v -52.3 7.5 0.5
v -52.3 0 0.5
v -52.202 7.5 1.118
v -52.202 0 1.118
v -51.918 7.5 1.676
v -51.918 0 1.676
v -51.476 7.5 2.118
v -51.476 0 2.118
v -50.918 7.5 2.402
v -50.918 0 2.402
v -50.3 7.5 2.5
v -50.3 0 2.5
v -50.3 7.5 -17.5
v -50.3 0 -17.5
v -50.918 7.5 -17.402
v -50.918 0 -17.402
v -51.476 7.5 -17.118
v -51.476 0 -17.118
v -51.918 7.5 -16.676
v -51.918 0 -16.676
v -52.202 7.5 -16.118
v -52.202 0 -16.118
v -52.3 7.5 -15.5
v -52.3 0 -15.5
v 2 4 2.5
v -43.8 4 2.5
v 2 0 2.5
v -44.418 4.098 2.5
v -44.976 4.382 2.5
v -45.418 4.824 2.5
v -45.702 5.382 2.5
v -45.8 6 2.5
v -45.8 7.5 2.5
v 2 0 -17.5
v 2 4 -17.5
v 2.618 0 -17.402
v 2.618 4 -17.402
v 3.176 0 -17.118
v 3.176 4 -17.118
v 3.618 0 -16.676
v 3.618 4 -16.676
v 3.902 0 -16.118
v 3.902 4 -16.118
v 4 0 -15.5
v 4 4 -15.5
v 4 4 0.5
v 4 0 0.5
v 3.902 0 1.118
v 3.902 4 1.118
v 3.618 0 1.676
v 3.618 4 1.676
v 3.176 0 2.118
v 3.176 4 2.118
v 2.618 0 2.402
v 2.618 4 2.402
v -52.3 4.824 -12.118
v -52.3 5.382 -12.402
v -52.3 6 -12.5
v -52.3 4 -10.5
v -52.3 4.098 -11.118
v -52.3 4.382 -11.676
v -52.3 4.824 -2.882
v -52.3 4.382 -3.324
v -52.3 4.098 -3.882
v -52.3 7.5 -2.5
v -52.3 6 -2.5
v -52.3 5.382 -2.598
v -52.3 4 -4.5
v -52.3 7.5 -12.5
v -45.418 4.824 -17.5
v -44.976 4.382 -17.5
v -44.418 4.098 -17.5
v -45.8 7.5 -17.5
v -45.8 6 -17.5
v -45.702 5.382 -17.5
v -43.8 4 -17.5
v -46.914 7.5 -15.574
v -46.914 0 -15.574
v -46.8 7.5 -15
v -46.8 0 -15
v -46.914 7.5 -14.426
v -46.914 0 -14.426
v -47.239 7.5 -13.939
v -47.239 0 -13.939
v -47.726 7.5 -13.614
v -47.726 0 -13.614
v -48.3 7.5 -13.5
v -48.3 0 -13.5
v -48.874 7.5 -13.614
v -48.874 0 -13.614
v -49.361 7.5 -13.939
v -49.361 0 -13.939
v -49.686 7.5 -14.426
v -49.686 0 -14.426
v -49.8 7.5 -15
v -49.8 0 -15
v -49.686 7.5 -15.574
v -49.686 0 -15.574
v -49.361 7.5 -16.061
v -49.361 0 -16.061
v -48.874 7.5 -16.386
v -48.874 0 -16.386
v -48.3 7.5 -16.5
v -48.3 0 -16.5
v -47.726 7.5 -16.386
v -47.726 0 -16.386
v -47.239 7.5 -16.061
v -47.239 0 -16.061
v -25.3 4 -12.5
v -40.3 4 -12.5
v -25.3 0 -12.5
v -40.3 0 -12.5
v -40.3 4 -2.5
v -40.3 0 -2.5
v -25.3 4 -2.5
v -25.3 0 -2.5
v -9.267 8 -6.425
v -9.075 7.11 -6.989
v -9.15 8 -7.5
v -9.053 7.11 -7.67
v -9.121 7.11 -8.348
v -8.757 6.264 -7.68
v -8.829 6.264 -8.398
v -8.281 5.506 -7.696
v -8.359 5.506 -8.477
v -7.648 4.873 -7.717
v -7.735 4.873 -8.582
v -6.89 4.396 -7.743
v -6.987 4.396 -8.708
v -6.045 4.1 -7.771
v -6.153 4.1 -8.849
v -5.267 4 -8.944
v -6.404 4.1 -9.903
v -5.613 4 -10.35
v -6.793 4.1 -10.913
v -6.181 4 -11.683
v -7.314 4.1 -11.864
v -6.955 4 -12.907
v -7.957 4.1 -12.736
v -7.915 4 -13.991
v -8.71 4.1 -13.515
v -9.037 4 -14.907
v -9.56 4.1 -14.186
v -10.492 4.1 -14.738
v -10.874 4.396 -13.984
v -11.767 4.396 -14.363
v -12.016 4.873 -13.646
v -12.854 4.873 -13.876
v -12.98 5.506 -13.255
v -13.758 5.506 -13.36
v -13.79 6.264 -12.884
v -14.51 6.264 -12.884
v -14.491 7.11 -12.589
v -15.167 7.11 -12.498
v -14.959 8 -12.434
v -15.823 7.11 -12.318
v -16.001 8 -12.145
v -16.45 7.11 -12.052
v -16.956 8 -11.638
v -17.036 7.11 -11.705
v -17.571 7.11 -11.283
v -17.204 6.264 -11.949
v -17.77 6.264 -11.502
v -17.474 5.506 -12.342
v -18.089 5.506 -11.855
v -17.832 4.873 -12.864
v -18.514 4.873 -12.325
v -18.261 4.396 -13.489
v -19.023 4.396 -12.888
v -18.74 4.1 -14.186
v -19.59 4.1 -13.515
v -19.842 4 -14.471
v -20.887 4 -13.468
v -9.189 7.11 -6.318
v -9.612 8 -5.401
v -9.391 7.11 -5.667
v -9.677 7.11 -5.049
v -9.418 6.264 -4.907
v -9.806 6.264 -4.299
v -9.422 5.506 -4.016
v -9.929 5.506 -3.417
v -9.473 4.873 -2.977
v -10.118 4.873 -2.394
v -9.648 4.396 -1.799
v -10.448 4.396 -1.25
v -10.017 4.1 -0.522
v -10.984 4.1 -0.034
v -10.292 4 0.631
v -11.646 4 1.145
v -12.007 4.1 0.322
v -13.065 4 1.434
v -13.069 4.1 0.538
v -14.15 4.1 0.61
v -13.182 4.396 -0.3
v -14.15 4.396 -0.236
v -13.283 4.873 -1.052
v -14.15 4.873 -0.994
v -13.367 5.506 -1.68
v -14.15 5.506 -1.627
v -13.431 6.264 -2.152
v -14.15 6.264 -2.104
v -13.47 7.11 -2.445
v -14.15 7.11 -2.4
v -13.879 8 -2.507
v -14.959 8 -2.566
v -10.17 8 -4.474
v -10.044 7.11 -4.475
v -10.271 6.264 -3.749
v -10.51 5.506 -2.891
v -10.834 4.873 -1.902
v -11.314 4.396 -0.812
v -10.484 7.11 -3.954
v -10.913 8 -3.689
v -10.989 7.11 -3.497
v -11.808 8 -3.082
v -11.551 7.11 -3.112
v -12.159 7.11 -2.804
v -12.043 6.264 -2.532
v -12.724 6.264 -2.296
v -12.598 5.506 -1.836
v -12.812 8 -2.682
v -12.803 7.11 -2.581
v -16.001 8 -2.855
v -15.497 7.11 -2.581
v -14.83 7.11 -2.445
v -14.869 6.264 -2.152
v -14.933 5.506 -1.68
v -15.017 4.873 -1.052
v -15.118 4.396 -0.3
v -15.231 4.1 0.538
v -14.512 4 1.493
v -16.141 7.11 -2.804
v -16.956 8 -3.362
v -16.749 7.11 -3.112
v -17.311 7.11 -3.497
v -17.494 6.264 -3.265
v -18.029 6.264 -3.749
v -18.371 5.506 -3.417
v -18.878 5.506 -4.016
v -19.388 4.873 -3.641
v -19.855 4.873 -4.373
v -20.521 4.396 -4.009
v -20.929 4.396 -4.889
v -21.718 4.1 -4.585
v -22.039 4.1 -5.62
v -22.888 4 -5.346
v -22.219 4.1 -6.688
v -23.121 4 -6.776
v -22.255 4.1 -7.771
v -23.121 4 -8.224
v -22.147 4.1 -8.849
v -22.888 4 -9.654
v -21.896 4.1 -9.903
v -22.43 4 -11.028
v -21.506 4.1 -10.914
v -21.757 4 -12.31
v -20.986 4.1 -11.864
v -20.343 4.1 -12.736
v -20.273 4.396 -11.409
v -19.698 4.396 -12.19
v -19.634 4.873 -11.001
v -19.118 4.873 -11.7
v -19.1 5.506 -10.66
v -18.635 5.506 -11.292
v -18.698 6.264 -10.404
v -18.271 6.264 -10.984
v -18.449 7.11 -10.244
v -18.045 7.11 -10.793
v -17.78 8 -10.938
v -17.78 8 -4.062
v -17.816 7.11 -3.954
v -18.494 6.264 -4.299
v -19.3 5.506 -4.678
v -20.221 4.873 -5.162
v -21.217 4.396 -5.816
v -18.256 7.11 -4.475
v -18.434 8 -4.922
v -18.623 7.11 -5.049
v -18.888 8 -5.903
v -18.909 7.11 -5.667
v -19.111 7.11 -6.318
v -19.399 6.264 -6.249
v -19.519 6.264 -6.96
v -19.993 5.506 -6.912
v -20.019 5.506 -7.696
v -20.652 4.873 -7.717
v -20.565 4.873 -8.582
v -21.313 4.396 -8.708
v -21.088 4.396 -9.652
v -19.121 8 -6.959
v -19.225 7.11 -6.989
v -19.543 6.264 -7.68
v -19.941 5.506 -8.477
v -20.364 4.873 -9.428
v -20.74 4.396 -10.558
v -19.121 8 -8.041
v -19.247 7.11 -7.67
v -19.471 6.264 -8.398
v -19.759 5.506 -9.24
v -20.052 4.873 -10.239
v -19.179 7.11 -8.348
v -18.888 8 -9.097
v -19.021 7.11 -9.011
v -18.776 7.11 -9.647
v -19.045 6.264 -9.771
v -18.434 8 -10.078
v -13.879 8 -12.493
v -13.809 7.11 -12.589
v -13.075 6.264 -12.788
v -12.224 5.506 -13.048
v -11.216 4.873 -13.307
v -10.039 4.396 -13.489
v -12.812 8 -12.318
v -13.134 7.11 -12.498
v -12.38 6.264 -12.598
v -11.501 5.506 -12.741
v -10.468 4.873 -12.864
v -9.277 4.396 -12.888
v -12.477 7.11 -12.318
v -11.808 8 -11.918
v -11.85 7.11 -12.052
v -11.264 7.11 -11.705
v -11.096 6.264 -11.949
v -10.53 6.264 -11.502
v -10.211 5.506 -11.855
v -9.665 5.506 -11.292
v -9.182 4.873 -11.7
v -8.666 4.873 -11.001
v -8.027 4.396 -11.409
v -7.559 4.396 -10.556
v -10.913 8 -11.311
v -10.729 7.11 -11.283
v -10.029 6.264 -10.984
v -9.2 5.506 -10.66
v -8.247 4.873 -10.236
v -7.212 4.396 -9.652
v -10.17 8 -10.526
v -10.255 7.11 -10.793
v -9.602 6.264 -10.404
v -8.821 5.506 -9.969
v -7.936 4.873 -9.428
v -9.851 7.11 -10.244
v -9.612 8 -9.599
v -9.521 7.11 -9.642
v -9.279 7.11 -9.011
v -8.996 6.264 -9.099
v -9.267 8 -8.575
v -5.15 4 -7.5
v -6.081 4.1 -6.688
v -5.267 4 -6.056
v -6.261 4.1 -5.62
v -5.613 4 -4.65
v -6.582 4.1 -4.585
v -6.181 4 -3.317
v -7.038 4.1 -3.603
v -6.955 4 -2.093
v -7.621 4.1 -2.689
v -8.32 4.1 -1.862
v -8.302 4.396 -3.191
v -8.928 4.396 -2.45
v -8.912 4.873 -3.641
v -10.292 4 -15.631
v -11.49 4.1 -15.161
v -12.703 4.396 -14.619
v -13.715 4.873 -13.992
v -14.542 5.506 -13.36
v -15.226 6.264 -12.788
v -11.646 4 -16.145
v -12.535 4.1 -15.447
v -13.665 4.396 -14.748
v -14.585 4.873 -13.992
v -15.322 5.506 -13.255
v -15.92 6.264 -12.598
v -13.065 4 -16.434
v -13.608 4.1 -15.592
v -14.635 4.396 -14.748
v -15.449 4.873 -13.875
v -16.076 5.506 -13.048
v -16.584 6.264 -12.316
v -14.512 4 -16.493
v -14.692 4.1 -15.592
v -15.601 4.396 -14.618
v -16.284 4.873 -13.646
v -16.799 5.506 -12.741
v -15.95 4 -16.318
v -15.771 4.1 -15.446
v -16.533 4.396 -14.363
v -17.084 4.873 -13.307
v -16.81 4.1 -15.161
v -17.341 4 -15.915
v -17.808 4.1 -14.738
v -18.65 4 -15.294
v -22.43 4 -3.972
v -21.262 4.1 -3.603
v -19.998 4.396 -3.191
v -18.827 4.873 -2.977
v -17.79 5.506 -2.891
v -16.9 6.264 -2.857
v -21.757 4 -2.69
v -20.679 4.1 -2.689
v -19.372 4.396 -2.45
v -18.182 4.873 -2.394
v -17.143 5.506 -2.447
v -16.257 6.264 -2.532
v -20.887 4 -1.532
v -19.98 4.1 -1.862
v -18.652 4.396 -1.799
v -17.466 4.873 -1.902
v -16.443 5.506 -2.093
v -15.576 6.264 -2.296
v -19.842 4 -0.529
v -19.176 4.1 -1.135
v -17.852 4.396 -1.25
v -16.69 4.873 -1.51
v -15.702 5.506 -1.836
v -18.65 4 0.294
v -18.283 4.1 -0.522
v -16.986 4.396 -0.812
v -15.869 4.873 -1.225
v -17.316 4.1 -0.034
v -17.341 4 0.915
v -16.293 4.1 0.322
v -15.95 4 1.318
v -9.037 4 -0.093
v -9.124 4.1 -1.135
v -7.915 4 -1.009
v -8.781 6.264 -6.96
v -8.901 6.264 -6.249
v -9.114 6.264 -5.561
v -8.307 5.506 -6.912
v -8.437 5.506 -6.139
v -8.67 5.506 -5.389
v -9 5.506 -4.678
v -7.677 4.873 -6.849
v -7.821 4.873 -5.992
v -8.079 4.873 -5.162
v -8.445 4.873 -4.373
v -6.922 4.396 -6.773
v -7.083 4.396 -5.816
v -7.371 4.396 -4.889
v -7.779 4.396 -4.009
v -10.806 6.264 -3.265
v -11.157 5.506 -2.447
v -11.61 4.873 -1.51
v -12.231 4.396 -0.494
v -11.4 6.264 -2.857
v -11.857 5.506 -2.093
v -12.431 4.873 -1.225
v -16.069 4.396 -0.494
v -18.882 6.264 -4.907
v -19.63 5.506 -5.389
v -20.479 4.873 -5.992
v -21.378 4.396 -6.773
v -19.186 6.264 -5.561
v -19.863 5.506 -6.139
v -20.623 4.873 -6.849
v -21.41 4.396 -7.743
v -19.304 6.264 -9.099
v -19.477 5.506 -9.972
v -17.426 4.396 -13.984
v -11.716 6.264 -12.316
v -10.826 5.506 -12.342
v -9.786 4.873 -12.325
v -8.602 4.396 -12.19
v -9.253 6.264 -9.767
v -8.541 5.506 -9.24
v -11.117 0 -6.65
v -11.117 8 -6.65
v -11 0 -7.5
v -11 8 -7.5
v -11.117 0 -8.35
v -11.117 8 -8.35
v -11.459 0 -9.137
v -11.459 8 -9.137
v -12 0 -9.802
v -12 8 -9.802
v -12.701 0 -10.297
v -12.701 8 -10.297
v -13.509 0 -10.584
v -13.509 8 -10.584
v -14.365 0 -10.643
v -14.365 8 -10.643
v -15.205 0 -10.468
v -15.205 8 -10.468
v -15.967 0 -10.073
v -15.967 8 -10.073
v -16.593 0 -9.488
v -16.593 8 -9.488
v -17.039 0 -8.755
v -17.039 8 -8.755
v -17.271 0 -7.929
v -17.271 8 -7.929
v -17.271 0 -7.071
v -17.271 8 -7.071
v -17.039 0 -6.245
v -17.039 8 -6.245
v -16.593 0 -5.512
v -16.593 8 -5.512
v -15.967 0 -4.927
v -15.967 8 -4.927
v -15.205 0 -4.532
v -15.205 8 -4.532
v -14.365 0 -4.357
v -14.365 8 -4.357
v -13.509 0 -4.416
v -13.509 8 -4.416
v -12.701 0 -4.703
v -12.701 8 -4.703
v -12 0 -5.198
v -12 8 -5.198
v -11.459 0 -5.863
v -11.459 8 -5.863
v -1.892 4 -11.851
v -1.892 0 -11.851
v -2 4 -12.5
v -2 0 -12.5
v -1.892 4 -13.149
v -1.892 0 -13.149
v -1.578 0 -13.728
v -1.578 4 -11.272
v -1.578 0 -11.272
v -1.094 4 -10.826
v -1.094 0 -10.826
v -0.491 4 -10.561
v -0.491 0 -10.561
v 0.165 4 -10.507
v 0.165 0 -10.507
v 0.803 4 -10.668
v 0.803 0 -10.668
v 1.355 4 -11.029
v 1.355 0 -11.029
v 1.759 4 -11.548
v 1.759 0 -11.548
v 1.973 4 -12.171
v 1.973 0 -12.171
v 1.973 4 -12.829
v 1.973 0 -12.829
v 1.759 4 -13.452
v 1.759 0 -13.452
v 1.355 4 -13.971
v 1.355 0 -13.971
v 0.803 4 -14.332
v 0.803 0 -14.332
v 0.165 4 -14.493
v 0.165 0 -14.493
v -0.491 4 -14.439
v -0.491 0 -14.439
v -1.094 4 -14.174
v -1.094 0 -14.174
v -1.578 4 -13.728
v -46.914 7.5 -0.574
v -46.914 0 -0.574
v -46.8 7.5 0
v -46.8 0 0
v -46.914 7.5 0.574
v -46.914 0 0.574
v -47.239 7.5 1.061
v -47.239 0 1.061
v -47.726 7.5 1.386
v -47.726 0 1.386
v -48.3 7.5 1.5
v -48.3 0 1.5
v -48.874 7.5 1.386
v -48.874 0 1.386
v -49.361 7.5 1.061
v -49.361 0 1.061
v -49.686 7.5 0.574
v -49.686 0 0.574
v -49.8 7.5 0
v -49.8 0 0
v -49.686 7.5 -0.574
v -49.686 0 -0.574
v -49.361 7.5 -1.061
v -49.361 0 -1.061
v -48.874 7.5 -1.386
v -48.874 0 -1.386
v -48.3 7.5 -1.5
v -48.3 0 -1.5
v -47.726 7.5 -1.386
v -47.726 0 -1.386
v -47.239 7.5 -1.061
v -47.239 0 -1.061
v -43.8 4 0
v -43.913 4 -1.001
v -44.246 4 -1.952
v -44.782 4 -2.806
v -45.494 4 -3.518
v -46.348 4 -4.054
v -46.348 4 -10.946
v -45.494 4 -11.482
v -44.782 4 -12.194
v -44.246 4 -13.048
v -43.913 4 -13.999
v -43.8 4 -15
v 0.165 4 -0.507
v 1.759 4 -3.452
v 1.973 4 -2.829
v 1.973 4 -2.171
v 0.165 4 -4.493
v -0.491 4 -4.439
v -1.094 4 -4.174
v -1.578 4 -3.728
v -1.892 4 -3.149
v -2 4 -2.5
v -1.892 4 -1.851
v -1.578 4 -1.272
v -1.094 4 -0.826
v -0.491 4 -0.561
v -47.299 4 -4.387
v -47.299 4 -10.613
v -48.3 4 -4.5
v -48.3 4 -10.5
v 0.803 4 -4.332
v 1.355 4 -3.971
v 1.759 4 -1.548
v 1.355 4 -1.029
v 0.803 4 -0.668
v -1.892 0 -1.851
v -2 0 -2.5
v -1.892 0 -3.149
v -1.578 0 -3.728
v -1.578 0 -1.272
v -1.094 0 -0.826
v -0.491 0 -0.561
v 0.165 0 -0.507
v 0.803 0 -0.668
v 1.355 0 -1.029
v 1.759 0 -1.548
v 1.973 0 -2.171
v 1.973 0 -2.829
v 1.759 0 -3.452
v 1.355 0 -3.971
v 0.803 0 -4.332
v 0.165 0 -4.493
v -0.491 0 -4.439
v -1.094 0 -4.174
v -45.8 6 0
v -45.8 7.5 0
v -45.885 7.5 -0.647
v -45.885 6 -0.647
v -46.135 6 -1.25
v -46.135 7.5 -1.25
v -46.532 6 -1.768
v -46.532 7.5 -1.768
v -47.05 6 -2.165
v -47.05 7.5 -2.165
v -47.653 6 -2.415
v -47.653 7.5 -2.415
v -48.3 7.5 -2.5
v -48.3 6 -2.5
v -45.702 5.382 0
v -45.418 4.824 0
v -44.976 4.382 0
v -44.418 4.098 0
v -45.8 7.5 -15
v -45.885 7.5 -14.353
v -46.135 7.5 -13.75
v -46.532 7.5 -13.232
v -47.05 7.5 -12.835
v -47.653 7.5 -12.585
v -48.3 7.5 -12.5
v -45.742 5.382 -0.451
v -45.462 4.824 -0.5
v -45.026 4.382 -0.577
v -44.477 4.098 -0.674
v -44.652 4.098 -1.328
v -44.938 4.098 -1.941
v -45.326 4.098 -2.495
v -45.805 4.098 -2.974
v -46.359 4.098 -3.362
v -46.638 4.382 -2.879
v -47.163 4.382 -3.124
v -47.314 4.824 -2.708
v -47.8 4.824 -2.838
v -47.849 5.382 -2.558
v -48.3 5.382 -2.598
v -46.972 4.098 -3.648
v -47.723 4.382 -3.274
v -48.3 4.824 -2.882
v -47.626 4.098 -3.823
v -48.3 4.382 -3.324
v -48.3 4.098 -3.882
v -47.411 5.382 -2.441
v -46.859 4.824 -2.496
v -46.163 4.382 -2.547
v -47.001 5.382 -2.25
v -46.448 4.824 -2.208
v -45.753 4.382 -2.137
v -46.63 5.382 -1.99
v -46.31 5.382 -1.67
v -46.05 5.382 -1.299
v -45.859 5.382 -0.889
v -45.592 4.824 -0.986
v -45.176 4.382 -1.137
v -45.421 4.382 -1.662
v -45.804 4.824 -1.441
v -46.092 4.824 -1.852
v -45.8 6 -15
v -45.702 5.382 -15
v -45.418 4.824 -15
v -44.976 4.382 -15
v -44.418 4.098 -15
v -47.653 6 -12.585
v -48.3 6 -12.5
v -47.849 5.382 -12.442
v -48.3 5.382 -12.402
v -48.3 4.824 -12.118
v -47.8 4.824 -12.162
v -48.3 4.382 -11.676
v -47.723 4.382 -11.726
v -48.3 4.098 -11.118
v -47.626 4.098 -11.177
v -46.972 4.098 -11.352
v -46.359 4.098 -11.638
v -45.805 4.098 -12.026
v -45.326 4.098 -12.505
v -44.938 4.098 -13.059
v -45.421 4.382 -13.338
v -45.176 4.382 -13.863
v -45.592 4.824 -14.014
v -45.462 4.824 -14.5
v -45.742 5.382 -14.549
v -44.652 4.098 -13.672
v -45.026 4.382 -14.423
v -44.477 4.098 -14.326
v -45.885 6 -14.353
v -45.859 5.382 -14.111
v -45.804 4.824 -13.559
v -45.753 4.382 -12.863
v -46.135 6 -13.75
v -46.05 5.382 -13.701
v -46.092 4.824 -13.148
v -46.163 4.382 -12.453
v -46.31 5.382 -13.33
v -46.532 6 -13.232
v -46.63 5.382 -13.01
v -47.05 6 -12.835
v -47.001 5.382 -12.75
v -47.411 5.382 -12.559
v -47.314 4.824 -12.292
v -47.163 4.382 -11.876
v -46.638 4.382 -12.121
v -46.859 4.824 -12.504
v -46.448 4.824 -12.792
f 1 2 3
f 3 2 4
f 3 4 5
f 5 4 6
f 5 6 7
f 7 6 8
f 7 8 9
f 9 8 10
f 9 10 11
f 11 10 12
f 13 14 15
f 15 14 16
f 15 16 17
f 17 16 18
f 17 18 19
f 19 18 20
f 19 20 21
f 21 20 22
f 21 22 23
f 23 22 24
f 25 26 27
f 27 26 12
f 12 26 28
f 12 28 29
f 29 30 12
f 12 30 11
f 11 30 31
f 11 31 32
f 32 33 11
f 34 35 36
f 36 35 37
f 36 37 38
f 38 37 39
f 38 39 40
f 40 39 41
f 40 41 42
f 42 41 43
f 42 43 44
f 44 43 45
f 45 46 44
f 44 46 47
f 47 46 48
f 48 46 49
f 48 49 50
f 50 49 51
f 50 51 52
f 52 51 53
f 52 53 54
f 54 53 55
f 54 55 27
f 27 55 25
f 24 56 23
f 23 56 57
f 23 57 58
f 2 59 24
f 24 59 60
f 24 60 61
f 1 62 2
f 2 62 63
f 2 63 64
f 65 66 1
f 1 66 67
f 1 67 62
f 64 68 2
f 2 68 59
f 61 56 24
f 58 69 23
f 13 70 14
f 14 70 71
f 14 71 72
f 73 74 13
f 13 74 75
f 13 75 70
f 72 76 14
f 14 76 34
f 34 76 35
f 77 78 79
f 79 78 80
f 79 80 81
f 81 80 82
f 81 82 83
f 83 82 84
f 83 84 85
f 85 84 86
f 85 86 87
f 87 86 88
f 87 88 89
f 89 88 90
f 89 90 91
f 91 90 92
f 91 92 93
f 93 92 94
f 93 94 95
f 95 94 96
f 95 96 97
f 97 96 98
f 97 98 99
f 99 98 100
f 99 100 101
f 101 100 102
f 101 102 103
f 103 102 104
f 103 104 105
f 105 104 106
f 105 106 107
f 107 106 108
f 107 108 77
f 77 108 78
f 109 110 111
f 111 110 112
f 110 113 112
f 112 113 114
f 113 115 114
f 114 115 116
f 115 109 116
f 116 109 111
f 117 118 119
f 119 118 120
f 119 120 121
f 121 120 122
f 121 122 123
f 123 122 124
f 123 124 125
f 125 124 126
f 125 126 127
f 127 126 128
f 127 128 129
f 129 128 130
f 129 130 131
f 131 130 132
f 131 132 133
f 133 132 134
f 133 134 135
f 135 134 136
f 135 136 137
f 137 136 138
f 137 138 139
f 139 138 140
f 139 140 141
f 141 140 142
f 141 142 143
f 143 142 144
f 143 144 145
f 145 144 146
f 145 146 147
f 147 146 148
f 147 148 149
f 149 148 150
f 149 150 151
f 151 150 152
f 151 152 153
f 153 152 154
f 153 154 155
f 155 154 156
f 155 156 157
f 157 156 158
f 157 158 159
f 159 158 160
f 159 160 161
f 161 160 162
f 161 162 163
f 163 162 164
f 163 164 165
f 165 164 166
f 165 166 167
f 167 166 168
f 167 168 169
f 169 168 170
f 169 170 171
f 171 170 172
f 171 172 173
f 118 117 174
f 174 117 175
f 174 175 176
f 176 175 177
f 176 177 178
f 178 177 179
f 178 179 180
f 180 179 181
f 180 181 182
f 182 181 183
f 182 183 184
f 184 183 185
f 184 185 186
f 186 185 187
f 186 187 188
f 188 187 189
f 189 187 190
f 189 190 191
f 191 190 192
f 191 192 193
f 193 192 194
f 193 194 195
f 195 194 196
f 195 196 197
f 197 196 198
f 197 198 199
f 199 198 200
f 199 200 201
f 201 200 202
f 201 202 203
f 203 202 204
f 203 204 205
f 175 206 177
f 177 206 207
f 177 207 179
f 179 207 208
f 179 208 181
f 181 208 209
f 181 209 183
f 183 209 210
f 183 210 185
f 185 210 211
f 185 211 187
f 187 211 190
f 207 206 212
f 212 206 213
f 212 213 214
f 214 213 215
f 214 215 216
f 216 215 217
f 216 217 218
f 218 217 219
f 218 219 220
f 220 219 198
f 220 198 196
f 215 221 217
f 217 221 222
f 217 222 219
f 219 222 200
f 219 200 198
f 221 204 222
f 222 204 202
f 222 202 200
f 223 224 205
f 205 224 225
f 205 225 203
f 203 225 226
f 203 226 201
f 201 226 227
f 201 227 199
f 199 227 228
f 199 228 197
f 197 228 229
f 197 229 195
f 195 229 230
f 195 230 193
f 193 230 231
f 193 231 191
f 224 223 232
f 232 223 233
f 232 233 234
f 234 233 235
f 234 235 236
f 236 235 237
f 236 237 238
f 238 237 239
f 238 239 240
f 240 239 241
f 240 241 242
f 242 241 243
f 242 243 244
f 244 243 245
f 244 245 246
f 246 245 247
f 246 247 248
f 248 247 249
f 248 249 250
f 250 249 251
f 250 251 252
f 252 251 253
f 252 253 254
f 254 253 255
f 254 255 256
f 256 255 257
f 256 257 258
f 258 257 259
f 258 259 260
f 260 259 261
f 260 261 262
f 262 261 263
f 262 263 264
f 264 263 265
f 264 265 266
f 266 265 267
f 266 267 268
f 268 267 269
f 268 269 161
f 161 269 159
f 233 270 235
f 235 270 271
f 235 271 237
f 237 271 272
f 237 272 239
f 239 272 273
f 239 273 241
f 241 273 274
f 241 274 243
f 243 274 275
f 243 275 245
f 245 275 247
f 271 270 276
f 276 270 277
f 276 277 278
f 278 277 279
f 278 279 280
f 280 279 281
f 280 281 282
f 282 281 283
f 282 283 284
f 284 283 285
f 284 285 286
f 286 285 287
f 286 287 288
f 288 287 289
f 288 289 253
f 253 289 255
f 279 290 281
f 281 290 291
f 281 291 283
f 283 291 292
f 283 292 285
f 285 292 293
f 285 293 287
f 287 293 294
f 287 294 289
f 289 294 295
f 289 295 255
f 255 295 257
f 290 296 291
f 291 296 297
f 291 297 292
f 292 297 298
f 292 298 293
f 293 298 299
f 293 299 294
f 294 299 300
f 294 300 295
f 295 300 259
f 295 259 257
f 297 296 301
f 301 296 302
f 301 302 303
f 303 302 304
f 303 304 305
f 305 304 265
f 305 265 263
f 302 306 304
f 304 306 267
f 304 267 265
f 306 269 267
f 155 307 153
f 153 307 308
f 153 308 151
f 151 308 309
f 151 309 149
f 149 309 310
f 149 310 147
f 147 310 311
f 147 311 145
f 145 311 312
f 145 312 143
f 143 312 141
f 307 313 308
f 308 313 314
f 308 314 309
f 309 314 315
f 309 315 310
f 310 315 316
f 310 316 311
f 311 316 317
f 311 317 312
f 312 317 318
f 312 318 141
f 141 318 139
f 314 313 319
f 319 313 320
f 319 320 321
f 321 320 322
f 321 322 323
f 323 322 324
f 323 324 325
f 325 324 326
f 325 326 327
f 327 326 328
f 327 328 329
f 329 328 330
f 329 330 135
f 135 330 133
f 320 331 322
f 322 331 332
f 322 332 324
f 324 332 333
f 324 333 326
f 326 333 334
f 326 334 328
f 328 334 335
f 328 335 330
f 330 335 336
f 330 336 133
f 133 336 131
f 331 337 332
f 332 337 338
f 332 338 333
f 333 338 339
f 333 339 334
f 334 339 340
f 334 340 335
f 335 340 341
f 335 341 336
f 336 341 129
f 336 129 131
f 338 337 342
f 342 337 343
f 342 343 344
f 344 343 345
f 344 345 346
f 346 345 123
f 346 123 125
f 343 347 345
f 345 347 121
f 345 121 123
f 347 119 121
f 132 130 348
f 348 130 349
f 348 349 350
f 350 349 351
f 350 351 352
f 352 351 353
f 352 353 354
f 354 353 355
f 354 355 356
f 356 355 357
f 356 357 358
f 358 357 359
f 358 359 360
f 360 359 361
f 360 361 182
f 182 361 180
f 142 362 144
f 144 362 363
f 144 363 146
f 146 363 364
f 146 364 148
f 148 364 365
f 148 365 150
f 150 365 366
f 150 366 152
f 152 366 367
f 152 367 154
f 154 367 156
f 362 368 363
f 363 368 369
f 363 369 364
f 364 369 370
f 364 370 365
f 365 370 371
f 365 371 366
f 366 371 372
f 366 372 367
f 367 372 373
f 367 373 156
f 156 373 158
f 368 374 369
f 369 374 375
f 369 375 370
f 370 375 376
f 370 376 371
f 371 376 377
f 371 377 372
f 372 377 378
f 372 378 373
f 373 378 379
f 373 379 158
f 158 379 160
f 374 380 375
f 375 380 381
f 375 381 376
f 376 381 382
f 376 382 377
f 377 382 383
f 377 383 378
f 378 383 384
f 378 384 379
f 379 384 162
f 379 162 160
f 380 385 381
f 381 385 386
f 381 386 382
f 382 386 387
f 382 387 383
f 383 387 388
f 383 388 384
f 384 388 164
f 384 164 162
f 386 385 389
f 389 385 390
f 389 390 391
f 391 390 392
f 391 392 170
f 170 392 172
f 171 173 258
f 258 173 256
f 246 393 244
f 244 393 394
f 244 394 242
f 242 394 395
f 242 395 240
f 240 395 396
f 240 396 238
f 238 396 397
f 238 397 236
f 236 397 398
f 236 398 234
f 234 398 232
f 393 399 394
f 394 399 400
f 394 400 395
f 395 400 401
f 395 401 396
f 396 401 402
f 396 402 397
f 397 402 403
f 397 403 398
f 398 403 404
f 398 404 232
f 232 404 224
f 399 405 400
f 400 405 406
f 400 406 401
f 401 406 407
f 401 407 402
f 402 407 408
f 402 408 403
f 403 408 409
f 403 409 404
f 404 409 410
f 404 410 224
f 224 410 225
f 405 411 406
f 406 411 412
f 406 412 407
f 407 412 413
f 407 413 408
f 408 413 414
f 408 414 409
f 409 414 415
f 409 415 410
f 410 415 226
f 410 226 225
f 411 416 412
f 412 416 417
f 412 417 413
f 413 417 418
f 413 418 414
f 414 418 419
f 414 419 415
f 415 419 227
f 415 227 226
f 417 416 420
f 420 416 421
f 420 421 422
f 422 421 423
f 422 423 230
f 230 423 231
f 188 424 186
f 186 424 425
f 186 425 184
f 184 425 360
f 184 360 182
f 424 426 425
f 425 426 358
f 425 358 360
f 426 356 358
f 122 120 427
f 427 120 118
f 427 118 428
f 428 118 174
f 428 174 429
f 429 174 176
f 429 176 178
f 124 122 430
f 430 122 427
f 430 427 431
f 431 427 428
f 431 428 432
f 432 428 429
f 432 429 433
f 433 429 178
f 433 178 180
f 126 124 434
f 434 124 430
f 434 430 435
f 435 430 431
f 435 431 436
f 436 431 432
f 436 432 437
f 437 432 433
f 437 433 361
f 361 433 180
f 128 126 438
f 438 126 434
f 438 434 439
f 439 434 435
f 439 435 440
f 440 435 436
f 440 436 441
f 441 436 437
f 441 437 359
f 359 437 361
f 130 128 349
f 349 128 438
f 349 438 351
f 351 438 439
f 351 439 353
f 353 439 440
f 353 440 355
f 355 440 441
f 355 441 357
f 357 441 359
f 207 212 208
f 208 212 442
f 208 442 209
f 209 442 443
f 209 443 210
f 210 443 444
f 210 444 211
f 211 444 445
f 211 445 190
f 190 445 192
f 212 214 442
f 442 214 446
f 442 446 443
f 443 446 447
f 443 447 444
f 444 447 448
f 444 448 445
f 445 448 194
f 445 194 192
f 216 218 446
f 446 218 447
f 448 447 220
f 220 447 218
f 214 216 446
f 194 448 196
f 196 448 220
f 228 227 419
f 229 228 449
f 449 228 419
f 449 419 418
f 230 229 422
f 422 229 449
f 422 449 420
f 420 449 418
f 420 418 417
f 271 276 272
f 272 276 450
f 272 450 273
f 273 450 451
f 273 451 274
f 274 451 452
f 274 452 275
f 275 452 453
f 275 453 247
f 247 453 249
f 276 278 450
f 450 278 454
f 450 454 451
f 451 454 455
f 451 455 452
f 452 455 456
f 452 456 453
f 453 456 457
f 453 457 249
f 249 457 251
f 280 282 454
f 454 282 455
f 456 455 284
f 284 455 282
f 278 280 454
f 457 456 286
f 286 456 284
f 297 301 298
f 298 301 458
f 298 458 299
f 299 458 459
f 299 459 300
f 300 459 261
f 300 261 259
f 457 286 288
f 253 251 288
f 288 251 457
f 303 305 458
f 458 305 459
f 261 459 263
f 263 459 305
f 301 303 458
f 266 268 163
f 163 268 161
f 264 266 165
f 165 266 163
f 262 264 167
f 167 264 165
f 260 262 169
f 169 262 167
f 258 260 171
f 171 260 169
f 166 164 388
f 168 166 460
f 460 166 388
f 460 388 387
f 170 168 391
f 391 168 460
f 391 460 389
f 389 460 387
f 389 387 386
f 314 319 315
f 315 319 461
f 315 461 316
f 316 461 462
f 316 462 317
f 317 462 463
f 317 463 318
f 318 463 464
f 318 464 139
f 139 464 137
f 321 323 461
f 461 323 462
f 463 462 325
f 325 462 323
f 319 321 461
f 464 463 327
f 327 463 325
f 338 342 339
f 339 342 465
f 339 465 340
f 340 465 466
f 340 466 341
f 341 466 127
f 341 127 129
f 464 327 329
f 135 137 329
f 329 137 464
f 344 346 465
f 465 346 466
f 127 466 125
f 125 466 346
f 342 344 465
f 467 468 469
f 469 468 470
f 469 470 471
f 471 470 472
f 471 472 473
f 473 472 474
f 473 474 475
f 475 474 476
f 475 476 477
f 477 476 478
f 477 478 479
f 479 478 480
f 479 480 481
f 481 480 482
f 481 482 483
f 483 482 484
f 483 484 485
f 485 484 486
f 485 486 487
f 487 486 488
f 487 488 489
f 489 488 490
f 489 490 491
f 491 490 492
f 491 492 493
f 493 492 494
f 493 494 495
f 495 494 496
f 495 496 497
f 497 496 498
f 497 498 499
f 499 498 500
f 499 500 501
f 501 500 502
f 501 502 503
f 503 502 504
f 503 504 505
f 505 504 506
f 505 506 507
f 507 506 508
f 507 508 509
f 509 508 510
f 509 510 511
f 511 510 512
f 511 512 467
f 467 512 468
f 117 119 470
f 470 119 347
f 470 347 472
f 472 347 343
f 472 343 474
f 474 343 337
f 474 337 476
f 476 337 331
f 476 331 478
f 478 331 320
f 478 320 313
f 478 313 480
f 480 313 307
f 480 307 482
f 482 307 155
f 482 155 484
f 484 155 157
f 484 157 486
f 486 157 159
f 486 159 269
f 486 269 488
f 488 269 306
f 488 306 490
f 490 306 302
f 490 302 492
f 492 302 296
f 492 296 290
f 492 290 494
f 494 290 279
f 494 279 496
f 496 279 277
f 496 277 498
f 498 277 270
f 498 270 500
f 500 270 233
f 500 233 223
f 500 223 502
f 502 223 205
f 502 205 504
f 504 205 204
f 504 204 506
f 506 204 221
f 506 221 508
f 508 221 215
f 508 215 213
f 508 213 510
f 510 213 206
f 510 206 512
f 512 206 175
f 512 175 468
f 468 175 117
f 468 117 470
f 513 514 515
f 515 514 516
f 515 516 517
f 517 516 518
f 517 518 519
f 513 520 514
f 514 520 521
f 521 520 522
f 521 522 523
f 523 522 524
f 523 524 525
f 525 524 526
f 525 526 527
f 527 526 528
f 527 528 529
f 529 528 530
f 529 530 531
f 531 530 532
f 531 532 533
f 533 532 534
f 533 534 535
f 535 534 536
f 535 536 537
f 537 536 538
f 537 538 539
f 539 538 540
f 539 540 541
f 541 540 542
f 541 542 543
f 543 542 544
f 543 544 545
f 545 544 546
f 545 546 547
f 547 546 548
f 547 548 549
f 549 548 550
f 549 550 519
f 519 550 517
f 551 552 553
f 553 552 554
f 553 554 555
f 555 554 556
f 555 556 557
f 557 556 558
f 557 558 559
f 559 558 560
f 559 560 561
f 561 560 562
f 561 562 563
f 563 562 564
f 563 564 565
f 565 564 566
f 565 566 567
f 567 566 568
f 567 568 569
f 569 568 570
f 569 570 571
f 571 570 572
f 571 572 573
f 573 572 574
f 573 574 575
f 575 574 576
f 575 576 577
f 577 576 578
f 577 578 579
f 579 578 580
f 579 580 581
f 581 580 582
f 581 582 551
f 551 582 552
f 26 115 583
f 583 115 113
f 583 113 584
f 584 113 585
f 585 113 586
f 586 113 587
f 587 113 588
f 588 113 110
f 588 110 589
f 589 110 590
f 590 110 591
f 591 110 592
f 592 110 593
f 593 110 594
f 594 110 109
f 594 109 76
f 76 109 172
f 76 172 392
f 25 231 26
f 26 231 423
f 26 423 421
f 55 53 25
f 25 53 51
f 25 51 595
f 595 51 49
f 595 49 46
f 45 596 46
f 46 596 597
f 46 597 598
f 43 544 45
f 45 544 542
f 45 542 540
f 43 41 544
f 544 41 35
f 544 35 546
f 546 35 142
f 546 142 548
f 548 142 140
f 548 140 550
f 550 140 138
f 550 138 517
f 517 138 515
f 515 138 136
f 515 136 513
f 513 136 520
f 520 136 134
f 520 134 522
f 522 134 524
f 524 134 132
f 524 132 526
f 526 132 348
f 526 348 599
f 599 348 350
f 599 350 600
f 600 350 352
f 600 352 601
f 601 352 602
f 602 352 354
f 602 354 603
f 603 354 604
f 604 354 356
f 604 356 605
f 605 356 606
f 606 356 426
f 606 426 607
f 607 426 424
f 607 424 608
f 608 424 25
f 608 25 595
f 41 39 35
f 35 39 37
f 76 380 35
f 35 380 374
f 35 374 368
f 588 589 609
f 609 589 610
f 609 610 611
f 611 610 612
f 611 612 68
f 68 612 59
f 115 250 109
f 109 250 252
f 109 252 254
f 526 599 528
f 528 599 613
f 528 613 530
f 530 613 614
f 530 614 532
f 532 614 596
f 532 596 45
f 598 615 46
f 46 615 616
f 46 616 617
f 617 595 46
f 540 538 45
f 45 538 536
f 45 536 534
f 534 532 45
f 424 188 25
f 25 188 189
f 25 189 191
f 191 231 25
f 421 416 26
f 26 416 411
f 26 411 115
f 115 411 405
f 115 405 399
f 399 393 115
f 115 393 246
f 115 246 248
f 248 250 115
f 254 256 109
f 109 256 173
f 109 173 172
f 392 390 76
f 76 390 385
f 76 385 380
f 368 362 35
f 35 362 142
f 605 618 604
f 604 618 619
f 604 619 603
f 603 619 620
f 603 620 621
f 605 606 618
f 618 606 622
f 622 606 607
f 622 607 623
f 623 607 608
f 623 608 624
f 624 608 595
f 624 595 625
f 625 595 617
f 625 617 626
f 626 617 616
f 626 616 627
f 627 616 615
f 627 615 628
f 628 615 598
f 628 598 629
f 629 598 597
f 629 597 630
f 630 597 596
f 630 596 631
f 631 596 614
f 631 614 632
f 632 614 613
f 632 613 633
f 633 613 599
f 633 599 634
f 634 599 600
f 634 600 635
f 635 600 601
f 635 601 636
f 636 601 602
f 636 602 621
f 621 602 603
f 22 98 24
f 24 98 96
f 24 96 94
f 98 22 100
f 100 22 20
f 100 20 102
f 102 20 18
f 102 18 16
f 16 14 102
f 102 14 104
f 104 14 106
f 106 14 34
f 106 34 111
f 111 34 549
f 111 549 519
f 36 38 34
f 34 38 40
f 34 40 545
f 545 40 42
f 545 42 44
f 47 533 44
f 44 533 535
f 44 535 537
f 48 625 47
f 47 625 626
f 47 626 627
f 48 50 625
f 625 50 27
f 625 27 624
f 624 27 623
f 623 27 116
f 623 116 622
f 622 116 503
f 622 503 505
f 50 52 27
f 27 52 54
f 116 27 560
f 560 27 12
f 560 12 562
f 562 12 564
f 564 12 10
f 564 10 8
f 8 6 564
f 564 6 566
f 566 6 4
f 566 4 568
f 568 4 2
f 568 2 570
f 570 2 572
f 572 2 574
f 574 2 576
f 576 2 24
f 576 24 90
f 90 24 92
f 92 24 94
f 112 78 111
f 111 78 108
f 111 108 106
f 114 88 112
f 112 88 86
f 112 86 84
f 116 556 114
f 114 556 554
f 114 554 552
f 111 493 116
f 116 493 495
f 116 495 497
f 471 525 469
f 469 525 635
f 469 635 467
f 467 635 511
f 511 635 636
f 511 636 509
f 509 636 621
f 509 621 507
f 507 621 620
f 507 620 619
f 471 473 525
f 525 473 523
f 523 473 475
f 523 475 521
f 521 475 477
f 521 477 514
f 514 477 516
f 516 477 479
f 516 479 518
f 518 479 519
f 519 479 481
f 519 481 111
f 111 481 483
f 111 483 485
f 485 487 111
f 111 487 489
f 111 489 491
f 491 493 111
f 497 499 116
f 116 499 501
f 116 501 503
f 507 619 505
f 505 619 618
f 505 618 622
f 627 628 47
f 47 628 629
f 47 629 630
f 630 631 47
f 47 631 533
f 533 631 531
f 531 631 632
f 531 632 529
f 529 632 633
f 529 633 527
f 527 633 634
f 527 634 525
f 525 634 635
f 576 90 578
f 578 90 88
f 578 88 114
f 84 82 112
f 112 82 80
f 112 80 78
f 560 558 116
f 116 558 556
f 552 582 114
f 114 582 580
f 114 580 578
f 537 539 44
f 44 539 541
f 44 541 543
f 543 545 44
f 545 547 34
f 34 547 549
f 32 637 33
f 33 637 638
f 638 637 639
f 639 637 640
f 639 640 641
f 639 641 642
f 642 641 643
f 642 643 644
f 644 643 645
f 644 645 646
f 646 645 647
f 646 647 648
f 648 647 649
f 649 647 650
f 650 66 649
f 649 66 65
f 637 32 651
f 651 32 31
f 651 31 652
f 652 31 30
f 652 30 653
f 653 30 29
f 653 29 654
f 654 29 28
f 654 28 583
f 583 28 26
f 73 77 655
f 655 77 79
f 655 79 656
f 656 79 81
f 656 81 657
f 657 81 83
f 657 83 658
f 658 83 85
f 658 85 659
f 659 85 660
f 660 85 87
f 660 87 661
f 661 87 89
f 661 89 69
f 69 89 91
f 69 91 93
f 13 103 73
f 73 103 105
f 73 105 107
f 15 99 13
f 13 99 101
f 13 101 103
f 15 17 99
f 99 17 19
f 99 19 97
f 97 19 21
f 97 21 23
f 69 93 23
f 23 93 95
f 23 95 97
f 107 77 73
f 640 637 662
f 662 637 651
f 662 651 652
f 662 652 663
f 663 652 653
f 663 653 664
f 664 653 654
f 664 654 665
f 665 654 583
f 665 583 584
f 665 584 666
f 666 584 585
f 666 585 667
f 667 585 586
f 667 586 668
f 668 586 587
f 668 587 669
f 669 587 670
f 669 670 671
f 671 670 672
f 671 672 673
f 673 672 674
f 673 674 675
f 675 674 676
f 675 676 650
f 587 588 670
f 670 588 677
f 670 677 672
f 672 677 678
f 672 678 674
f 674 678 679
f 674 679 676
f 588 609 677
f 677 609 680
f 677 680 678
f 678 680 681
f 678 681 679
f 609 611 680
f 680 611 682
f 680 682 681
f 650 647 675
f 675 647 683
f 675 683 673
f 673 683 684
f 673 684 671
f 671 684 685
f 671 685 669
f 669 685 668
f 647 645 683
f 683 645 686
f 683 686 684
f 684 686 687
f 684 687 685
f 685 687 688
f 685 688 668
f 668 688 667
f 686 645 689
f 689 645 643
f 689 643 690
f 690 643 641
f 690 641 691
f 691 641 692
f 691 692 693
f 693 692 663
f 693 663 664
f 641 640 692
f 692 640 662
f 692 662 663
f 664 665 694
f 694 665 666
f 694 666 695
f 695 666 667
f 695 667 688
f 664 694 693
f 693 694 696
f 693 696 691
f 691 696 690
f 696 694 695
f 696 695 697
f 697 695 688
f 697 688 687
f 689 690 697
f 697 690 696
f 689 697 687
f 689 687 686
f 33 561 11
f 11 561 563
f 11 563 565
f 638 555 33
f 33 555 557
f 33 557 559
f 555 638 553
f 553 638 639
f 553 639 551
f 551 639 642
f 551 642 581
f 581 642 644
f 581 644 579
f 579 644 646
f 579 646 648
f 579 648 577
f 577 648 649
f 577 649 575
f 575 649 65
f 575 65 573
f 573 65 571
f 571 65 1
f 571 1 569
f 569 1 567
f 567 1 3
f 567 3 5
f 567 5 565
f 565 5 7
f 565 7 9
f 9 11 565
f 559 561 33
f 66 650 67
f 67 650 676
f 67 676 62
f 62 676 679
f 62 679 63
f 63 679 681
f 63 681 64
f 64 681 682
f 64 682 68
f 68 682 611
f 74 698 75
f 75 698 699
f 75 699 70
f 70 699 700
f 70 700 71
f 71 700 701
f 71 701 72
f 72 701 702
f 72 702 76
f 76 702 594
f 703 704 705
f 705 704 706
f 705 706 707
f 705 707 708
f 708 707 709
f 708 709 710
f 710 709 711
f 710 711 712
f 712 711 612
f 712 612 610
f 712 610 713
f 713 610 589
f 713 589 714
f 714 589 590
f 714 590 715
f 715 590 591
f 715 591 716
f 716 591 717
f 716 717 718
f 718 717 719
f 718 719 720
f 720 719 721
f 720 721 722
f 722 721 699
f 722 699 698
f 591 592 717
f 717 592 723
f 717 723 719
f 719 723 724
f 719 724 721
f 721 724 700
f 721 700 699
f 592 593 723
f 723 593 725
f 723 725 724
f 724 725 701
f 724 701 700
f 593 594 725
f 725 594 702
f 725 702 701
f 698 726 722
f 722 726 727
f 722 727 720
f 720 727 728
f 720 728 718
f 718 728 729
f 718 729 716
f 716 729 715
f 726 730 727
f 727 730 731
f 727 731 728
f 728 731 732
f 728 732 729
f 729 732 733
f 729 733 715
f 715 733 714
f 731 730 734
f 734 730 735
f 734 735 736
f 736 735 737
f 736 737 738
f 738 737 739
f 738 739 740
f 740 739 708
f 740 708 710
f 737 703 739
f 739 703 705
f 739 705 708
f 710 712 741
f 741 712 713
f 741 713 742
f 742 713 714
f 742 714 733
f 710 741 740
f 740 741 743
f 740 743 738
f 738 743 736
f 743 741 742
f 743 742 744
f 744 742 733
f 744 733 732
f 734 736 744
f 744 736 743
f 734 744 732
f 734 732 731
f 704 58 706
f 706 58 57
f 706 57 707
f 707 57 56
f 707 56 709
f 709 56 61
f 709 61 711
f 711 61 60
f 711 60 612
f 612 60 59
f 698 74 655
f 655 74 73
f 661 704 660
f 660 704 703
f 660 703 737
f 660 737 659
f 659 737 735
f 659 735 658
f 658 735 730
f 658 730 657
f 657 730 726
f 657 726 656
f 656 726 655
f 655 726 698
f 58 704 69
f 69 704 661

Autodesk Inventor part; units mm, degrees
ref_plane "YZ Plane" through (0, 0, 0) normal (1, 0, 0) x (0, 1, 0)
ref_plane "XZ Plane" through (0, 0, 0) normal (0, 1, 0) x (-1, 0, 0)
ref_plane "XY Plane" through (0, 0, 0) normal (0, 0, 1) x (1, 0, 0)
sketch "Sketch1" plane through (0, 0, 0) normal (0, 1, 0) x (-1, 0, 0)
  line L0 (0, 0) -> (48.3, 0)
  line L1 (48.3, 0) -> (48.3, -15)
  line L2 (48.3, -15) -> (0, -15)
  line L3 (0, -15) -> (0, 0)
  circle A0 centre (48.3, 0) radius 1.5
  circle A1 centre (48.3, -15) radius 1.5
  line L4 (48.3, -15) -> (52.3, -15)
  line L5 (52.3, -15) -> (52.3, -17.5)
  line L6 (52.3, -17.5) -> (48.3, -17.5)
  line L7 (48.3, -17.5) -> (48.3, -15)
  line L8 (0, 0) -> (-4, 0)
  line L9 (-4, 0) -> (-4, 2.5)
  line L10 (-4, 2.5) -> (0, 2.5)
  line L11 (0, 2.5) -> (0, 0)
  line L12 (-4, 2.5) -> (52.3, 2.5)
  line L13 (52.3, 2.5) -> (52.3, -17.5)
  line L14 (52.3, -17.5) -> (-4, -17.5)
  line L15 (-4, -17.5) -> (-4, 2.5)
  line L16 (0, -2.5) -> (0, -12.5)
  circle A2 centre (0, -12.5) radius 2
  circle A3 centre (0, -2.5) radius 2
  point P0 (0, -7.5)
  dimension "d0" = 48.3
  dimension "d1" = 15
  dimension "d2" = 3
  dimension "d3" = 3
  dimension "d6" = 4
  dimension "d7" = 2.5
  dimension "d8" = 4
  dimension "d9" = 2.5
  dimension "d33" = 10
  dimension "d34" = 4
  dimension "d35" = 4
extrude "Extrusion1" add sketch "Sketch1" along normal blind 4 contours L11 L12 L13 L4 A1 L1 A0 L0 | L0 A0 L1 A1 L2 L3 A2 A3 | L3 A3 A2 L2 A1 L7 L14 L15 L8 | L8 L9 L10 L11 | L7 A1 L4 L5 L6
sketch "Sketch2" plane through (0, 4, 0) normal (0, 1, 0) x (1, 0, 0)
  line L0 (4, -2.5) -> (4, 17.5) projected
  line L1 (4, -2.5) -> (-14.15, -2.5)
  line L2 (-14.15, -2.5) -> (-14.15, 7.5)
  line L3 (-14.15, 7.5) -> (4, 7.5)
  line L4 (4, 7.5) -> (4, -2.5)
  circle A0 centre (-14.15, 7.5) radius 5
  circle A1 centre (-14.15, 7.5) radius 3.15
  point P0 (0, 0)
  dimension "d12" = 18.15
  dimension "d13" = 10
  dimension "d14" = 10
  dimension "d19" = 6.3
extrude "Extrusion2" add sketch "Sketch2" along normal blind 4 and the other way blind 2.5 contours A0 L2 A1 L3 | L3 A1 L2 A0
extrude "Extrusion3" cut sketch "Sketch2" against normal blind 4 contours A1 L2 L3 | L3 L2 A1
fillet "Fillet2" radius 4 1 edges at (-19.15, 4, -7.5)
sketch "Sketch3" plane through (0, 4, 0) normal (0, 1, 0) x (1, 0, 0)
  line L0 (4, 17.5) -> (-52.3, 17.5) projected
  line L1 (-52.3, 17.5) -> (-40.3, 17.5)
  line L2 (-40.3, 17.5) -> (-40.3, 12.5)
  line L3 (-40.3, 12.5) -> (-52.3, 12.5)
  line L4 (-52.3, 12.5) -> (-52.3, 17.5)
  line L5 (-52.3, -2.5) -> (4, -2.5) projected
  line L6 (-52.3, -2.5) -> (-40.3, -2.5)
  line L7 (-40.3, -2.5) -> (-40.3, 2.5)
  line L8 (-40.3, 2.5) -> (-52.3, 2.5)
  line L9 (-52.3, 2.5) -> (-52.3, -2.5)
  line L10 (-40.3, 2.5) -> (-25.3, 2.5)
  line L11 (-25.3, 2.5) -> (-25.3, 12.5)
  line L12 (-25.3, 12.5) -> (-40.3, 12.5)
  line L13 (-40.3, 12.5) -> (-40.3, 2.5)
  point P0 (0, 0)
  dimension "d25" = 12
  dimension "d26" = 5
  dimension "d27" = 12
  dimension "d28" = 5
  dimension "d29" = 15
extrude "Extrusion4" cut sketch "Sketch3" against normal blind 4 contours L12 L11 L10 L13
fillet "Fillet3" radius 2 4 edges at (-52.3, 2, 2.5) (4, 2, 2.5) (4, 2, -17.5) (-52.3, 2, -17.5)
sketch "Sketch4" plane through (0, 4, 0) normal (0, 1, 0) x (1, 0, 0)
  circle A0 centre (-48.3, 0) radius 1.5 projected
  circle A1 centre (-48.3, 0) radius 1.5
  circle A2 centre (-48.3, 0) radius 2.5
  line L0 (-50.3, -2.5) -> (2, -2.5) projected
  circle A3 centre (-48.3, 15) radius 1.5 projected
  circle A4 centre (-48.3, 15) radius 1.5
  circle A5 centre (-48.3, 15) radius 2.5
  line L1 (2, 17.5) -> (-50.3, 17.5) projected
  line L2 (-45.8, 12.5) -> (-52.3, 12.5)
  line L3 (-52.3, 12.5) -> (-52.3, 17.5)
  line L4 (-52.3, 17.5) -> (-45.8, 17.5)
  line L5 (-45.8, 17.5) -> (-45.8, 12.5)
  line L6 (-52.3, -2.5) -> (-45.8, -2.5)
  line L7 (-45.8, -2.5) -> (-45.8, 2.5)
  line L8 (-45.8, 2.5) -> (-52.3, 2.5)
  line L9 (-52.3, 2.5) -> (-52.3, -2.5)
  arc A6 (-52.3, -0.5) -> (-50.3, -2.5) centre (-50.3, -0.5) ccw projected
  circle A7 centre (-50.3, -0.5) radius 2
  arc A8 (-50.3, 17.5) -> (-52.3, 15.5) centre (-50.3, 15.5) ccw projected
  circle A9 centre (-50.3, 15.5) radius 2
  point P0 (0, 0)
  point P1 (-48.3, 12.5)
  point P2 (-45.8, 15)
  point P3 (-45.8, 0)
  point P4 (-48.3, 2.5)
extrude "Extrusion5" add sketch "Sketch4" along normal blind 3.5 contours A0 A7 A2 | A0 A7 A2 | A7 L9 L8 A2 | A2 A7 A6 | A2 L0 A7 | A2 L7 L0 | A3 A9 A5 | A3 A9 A5 | A9 L1 A5 | A5 A9 A8 | A5 L2 L3 A9 | L1 L5 A5
fillet "Fillet4" radius 2 6 edges at (-46.5322, 4, -13.2322) (-45.8, 4, -16.25) (-50.3, 4, -12.5) (-45.8, 4, 1.25) (-50.3, 4, -2.5) (-46.5322, 4, -1.7678)
properties part number "back_servo_support"
